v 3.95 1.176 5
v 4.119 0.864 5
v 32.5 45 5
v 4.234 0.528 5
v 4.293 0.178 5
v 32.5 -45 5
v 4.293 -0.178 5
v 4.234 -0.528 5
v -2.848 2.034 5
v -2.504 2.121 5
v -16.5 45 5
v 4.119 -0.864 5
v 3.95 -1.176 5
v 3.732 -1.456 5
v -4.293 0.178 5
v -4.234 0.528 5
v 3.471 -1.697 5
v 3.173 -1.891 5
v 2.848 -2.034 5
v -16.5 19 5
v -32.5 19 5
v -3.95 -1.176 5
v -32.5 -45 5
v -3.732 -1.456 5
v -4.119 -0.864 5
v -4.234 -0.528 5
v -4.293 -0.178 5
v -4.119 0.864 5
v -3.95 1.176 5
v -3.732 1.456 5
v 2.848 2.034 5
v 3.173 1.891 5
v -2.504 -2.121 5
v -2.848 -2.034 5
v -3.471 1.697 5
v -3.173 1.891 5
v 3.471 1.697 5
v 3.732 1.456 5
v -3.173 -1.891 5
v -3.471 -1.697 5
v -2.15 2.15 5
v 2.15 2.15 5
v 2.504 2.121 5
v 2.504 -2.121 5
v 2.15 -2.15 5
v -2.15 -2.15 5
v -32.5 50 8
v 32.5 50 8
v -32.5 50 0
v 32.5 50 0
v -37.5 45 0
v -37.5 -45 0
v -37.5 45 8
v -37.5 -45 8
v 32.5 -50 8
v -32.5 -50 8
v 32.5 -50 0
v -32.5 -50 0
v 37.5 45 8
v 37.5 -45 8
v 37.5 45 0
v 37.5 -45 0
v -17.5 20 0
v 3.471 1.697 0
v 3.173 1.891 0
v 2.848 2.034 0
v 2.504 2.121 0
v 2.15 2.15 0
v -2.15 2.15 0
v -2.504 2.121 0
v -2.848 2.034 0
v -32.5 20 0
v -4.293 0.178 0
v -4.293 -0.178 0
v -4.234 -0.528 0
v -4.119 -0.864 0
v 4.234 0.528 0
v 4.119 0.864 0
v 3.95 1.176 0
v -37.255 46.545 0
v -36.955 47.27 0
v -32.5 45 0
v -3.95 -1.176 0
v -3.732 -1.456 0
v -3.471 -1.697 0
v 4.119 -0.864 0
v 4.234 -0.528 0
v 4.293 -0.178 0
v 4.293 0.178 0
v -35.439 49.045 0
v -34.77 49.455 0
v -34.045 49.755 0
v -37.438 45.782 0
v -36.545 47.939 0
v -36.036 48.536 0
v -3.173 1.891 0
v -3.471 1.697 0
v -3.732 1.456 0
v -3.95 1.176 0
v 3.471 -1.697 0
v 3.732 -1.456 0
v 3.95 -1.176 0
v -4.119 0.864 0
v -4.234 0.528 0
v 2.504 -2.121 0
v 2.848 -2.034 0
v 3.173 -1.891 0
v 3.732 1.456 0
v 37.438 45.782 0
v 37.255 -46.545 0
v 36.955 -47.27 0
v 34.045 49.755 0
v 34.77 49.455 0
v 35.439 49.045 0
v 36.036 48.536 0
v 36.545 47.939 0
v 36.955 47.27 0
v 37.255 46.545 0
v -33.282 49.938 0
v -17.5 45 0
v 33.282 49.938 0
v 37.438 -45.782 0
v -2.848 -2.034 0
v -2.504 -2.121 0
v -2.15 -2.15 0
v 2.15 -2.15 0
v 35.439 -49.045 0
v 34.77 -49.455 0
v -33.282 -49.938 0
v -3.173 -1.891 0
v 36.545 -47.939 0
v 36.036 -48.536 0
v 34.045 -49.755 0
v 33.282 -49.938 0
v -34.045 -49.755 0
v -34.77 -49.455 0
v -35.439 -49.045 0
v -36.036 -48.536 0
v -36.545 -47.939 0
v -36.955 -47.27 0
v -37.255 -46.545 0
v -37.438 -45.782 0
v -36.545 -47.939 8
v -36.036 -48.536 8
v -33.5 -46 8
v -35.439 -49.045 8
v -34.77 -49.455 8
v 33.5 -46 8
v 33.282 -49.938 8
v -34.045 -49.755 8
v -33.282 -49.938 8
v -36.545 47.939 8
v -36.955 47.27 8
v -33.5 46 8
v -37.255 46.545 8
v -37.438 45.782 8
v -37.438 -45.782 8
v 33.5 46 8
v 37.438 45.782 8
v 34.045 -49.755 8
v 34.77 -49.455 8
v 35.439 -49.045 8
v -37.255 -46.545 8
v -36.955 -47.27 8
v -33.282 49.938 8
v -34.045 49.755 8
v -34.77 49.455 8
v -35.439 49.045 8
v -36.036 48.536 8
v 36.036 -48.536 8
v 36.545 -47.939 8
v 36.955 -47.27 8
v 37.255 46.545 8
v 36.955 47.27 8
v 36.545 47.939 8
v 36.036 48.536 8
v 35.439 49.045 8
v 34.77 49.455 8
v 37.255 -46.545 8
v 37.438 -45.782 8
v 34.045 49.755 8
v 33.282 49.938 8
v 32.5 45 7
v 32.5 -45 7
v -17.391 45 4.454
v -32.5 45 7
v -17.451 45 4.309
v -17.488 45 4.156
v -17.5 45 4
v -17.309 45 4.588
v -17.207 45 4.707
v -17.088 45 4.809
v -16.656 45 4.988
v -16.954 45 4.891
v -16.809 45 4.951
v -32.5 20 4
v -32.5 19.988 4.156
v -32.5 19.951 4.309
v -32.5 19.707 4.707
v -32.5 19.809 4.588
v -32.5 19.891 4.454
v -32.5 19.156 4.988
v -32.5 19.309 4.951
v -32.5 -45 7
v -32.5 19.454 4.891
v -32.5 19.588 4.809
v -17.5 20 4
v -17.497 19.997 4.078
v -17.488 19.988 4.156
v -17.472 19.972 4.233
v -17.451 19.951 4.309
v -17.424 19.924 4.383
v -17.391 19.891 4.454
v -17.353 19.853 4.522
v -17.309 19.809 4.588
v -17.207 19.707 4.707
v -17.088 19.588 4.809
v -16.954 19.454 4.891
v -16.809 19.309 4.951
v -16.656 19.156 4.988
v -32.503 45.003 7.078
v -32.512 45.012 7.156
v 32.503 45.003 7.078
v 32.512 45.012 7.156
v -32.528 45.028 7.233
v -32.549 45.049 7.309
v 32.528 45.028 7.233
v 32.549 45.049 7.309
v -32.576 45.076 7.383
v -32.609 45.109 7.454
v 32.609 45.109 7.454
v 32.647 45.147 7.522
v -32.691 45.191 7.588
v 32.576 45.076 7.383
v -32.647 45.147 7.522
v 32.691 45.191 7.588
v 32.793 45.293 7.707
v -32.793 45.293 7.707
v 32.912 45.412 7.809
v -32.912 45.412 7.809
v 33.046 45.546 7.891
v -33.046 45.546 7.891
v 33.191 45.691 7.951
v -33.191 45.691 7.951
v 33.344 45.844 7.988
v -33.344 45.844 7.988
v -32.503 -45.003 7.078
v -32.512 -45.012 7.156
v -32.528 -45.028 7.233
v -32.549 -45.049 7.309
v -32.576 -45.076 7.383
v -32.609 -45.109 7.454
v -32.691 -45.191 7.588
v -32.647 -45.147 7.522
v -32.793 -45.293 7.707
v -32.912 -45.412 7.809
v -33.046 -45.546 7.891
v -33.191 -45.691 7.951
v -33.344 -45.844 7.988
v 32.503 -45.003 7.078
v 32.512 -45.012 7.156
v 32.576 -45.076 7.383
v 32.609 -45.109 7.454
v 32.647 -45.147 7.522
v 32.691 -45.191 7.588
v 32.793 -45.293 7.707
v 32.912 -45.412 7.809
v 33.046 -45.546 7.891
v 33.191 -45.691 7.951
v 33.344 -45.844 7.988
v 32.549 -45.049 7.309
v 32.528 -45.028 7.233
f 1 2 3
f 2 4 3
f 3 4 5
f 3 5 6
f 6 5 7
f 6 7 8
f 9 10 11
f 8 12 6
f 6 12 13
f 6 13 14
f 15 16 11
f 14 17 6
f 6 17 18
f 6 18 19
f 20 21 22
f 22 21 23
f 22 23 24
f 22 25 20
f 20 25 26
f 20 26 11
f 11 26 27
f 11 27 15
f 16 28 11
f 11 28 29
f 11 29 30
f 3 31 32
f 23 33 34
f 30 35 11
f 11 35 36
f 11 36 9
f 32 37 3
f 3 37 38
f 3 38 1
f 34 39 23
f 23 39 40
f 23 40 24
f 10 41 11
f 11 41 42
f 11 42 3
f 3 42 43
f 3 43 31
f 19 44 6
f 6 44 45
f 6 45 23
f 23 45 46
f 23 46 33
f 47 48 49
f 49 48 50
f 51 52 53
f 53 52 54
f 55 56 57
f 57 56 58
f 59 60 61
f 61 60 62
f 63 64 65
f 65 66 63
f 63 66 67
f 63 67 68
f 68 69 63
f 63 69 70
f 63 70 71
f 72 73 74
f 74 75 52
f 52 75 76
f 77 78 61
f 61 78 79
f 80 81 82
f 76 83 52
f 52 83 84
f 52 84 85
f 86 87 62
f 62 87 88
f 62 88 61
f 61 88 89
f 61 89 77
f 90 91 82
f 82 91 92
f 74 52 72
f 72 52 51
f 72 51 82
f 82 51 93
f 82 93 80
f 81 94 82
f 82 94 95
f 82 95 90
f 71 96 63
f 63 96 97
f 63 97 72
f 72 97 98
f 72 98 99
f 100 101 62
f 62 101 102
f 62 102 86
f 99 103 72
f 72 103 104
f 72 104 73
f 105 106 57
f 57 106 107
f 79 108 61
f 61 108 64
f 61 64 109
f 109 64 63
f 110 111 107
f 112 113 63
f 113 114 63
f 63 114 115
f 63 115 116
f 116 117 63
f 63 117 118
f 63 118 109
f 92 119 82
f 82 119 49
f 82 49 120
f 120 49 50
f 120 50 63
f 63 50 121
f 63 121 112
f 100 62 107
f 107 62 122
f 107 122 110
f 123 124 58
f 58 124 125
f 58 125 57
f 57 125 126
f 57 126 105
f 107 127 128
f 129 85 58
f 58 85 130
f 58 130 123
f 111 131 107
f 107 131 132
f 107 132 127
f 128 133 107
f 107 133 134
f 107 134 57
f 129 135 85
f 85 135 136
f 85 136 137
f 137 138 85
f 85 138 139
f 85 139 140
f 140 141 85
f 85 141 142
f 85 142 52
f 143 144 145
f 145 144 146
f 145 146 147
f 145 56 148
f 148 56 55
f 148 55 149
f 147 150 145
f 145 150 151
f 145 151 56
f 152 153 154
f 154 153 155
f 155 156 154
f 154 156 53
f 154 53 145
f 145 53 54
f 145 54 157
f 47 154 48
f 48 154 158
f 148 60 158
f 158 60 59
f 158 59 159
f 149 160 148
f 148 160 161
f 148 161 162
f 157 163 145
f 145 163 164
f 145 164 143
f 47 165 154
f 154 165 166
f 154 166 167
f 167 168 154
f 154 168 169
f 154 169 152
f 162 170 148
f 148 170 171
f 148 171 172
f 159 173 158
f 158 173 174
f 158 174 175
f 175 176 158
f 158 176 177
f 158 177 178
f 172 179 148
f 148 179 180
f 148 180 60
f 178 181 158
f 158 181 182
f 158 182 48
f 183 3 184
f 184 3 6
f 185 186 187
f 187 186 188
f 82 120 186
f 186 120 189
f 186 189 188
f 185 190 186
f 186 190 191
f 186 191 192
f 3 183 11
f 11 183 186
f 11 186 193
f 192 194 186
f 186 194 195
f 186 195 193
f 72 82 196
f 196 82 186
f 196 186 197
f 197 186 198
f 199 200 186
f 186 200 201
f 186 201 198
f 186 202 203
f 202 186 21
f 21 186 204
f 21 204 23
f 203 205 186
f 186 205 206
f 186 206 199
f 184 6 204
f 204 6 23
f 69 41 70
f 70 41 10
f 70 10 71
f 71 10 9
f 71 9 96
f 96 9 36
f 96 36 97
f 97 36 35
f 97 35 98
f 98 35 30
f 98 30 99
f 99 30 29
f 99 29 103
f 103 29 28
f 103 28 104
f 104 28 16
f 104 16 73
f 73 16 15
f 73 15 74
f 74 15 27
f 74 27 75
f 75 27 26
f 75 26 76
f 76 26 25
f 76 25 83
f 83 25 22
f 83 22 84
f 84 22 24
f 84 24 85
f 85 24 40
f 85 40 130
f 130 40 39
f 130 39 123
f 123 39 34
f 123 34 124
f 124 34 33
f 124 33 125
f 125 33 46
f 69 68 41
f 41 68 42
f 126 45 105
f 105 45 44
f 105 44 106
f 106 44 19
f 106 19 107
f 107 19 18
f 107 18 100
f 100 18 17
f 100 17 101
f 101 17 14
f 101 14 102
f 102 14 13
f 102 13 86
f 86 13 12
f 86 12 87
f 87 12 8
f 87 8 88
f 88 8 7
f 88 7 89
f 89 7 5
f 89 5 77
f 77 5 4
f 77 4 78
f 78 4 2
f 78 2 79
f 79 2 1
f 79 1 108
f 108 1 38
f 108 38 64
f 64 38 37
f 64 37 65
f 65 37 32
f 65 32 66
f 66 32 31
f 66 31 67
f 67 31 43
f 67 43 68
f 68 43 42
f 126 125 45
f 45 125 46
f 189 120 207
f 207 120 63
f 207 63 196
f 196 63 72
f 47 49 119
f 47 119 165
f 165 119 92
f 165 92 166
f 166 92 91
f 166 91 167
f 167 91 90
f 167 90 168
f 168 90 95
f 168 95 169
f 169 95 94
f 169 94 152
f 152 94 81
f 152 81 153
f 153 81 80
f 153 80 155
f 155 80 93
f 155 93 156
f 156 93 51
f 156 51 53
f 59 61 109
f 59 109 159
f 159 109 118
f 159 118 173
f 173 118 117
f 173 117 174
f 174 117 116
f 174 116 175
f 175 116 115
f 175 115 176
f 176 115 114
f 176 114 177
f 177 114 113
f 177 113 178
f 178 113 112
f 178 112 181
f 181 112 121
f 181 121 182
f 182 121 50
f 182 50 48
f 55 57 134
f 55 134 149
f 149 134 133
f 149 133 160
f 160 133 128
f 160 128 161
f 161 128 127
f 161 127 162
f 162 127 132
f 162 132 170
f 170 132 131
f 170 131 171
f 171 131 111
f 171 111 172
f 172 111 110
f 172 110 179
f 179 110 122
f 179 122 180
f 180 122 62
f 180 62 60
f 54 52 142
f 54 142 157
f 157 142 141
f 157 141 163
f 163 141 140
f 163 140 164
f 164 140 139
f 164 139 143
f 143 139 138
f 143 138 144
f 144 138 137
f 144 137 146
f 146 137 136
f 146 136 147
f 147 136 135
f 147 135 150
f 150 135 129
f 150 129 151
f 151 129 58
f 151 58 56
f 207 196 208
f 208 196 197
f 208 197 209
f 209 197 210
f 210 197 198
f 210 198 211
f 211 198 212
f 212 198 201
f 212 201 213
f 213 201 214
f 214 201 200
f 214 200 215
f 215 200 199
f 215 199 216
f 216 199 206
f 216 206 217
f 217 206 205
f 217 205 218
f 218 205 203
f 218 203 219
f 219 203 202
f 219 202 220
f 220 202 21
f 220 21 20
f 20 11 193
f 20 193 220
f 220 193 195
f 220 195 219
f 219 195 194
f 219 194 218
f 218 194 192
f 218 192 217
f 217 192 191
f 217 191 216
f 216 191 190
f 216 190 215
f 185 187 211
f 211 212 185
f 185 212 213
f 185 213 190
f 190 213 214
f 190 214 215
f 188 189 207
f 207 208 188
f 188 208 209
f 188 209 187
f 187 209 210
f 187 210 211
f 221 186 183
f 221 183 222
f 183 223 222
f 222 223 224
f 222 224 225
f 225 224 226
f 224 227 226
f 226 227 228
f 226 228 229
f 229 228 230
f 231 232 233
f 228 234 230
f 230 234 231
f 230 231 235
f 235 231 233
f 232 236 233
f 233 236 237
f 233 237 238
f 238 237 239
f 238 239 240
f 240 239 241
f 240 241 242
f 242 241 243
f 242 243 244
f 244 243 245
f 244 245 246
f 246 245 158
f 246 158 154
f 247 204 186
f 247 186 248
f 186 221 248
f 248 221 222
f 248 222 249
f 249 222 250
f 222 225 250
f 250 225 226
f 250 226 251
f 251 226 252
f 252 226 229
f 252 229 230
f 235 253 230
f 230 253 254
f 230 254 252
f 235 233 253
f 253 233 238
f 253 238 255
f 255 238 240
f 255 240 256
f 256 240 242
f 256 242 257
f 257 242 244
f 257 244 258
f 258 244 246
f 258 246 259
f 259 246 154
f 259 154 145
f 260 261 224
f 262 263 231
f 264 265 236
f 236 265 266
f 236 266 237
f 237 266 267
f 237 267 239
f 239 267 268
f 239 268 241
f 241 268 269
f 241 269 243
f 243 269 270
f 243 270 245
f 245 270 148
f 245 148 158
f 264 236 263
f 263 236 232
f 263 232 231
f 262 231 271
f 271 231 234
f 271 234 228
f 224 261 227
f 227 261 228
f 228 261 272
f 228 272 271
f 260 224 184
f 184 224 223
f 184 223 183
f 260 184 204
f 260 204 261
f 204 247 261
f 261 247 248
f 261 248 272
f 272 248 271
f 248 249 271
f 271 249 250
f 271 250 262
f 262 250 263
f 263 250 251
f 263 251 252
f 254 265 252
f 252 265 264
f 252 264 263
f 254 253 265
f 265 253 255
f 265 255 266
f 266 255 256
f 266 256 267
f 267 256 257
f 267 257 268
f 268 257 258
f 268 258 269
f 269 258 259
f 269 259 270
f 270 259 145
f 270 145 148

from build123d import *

# Parameters (mm, degrees)
SKETCH1_W           = 100
SKETCH1_H           = 75
BOSS_EXTRUDE1_DEPTH = 5
SKETCH2_W           = 75
SKETCH2_H           = 100
SKETCH2_W_2         = 65
SKETCH2_H_2         = 90
BOSS_EXTRUDE2_DEPTH = 3
SKETCH3_W           = 15
SKETCH3_H           = 25
CUT_EXTRUDE1_DEPTH  = 63.69968102
FILLET1_R           = 5
FILLET2_R           = 1


with BuildPart() as part:
    # Sketch1 → Boss-Extrude1 (new body)
    with BuildSketch(Plane(origin=(0, 0, 0), x_dir=(0, 1, 0), z_dir=(0, 0, 1))):
        Rectangle(SKETCH1_W, SKETCH1_H)
    extrude(amount=BOSS_EXTRUDE1_DEPTH)

    # Sketch2 → Boss-Extrude2 (add)
    with BuildSketch(Plane.XY.offset(5)):
        Rectangle(SKETCH2_W, SKETCH2_H)
        Rectangle(SKETCH2_W_2, SKETCH2_H_2, mode=Mode.SUBTRACT)
    extrude(amount=BOSS_EXTRUDE2_DEPTH)

    # Sketch3 → Cut-Extrude1 (cut, through all)
    with BuildSketch(Plane.XY.offset(5)):
        with Locations((-25, 32.5)):
            Rectangle(SKETCH3_W, SKETCH3_H)
        with BuildLine():
            Line((-2.15, 2.15), (2.15, 2.15))
            ThreePointArc((2.15, 2.15), (4.3, 0), (2.15, -2.15))
            Line((2.15, -2.15), (-2.15, -2.15))
            ThreePointArc((-2.15, -2.15), (-4.3, 0), (-2.15, 2.15))
        make_face()
    extrude(amount=-CUT_EXTRUDE1_DEPTH, mode=Mode.SUBTRACT)

    # Fillet1
    fillet1_edges = [part.edges().sort_by_distance(p)[0] for p in [
        (37.5, 50, 4),
        (37.5, -50, 4),
        (-37.5, -50, 4),
        (-37.5, 50, 4),
    ]]
    fillet(fillet1_edges, radius=FILLET1_R)

    # Fillet2
    fillet2_edges = [part.edges().sort_by_distance(p)[0] for p in [
        (32.5, 0, 8),
        (0, 45, 8),
        (-32.5, 0, 8),
        (0, -45, 8),
        (-25, 20, 5),
        (-17.5, 32.5, 5),
    ]]
    fillet(fillet2_edges, radius=FILLET2_R)


solid = part.part
